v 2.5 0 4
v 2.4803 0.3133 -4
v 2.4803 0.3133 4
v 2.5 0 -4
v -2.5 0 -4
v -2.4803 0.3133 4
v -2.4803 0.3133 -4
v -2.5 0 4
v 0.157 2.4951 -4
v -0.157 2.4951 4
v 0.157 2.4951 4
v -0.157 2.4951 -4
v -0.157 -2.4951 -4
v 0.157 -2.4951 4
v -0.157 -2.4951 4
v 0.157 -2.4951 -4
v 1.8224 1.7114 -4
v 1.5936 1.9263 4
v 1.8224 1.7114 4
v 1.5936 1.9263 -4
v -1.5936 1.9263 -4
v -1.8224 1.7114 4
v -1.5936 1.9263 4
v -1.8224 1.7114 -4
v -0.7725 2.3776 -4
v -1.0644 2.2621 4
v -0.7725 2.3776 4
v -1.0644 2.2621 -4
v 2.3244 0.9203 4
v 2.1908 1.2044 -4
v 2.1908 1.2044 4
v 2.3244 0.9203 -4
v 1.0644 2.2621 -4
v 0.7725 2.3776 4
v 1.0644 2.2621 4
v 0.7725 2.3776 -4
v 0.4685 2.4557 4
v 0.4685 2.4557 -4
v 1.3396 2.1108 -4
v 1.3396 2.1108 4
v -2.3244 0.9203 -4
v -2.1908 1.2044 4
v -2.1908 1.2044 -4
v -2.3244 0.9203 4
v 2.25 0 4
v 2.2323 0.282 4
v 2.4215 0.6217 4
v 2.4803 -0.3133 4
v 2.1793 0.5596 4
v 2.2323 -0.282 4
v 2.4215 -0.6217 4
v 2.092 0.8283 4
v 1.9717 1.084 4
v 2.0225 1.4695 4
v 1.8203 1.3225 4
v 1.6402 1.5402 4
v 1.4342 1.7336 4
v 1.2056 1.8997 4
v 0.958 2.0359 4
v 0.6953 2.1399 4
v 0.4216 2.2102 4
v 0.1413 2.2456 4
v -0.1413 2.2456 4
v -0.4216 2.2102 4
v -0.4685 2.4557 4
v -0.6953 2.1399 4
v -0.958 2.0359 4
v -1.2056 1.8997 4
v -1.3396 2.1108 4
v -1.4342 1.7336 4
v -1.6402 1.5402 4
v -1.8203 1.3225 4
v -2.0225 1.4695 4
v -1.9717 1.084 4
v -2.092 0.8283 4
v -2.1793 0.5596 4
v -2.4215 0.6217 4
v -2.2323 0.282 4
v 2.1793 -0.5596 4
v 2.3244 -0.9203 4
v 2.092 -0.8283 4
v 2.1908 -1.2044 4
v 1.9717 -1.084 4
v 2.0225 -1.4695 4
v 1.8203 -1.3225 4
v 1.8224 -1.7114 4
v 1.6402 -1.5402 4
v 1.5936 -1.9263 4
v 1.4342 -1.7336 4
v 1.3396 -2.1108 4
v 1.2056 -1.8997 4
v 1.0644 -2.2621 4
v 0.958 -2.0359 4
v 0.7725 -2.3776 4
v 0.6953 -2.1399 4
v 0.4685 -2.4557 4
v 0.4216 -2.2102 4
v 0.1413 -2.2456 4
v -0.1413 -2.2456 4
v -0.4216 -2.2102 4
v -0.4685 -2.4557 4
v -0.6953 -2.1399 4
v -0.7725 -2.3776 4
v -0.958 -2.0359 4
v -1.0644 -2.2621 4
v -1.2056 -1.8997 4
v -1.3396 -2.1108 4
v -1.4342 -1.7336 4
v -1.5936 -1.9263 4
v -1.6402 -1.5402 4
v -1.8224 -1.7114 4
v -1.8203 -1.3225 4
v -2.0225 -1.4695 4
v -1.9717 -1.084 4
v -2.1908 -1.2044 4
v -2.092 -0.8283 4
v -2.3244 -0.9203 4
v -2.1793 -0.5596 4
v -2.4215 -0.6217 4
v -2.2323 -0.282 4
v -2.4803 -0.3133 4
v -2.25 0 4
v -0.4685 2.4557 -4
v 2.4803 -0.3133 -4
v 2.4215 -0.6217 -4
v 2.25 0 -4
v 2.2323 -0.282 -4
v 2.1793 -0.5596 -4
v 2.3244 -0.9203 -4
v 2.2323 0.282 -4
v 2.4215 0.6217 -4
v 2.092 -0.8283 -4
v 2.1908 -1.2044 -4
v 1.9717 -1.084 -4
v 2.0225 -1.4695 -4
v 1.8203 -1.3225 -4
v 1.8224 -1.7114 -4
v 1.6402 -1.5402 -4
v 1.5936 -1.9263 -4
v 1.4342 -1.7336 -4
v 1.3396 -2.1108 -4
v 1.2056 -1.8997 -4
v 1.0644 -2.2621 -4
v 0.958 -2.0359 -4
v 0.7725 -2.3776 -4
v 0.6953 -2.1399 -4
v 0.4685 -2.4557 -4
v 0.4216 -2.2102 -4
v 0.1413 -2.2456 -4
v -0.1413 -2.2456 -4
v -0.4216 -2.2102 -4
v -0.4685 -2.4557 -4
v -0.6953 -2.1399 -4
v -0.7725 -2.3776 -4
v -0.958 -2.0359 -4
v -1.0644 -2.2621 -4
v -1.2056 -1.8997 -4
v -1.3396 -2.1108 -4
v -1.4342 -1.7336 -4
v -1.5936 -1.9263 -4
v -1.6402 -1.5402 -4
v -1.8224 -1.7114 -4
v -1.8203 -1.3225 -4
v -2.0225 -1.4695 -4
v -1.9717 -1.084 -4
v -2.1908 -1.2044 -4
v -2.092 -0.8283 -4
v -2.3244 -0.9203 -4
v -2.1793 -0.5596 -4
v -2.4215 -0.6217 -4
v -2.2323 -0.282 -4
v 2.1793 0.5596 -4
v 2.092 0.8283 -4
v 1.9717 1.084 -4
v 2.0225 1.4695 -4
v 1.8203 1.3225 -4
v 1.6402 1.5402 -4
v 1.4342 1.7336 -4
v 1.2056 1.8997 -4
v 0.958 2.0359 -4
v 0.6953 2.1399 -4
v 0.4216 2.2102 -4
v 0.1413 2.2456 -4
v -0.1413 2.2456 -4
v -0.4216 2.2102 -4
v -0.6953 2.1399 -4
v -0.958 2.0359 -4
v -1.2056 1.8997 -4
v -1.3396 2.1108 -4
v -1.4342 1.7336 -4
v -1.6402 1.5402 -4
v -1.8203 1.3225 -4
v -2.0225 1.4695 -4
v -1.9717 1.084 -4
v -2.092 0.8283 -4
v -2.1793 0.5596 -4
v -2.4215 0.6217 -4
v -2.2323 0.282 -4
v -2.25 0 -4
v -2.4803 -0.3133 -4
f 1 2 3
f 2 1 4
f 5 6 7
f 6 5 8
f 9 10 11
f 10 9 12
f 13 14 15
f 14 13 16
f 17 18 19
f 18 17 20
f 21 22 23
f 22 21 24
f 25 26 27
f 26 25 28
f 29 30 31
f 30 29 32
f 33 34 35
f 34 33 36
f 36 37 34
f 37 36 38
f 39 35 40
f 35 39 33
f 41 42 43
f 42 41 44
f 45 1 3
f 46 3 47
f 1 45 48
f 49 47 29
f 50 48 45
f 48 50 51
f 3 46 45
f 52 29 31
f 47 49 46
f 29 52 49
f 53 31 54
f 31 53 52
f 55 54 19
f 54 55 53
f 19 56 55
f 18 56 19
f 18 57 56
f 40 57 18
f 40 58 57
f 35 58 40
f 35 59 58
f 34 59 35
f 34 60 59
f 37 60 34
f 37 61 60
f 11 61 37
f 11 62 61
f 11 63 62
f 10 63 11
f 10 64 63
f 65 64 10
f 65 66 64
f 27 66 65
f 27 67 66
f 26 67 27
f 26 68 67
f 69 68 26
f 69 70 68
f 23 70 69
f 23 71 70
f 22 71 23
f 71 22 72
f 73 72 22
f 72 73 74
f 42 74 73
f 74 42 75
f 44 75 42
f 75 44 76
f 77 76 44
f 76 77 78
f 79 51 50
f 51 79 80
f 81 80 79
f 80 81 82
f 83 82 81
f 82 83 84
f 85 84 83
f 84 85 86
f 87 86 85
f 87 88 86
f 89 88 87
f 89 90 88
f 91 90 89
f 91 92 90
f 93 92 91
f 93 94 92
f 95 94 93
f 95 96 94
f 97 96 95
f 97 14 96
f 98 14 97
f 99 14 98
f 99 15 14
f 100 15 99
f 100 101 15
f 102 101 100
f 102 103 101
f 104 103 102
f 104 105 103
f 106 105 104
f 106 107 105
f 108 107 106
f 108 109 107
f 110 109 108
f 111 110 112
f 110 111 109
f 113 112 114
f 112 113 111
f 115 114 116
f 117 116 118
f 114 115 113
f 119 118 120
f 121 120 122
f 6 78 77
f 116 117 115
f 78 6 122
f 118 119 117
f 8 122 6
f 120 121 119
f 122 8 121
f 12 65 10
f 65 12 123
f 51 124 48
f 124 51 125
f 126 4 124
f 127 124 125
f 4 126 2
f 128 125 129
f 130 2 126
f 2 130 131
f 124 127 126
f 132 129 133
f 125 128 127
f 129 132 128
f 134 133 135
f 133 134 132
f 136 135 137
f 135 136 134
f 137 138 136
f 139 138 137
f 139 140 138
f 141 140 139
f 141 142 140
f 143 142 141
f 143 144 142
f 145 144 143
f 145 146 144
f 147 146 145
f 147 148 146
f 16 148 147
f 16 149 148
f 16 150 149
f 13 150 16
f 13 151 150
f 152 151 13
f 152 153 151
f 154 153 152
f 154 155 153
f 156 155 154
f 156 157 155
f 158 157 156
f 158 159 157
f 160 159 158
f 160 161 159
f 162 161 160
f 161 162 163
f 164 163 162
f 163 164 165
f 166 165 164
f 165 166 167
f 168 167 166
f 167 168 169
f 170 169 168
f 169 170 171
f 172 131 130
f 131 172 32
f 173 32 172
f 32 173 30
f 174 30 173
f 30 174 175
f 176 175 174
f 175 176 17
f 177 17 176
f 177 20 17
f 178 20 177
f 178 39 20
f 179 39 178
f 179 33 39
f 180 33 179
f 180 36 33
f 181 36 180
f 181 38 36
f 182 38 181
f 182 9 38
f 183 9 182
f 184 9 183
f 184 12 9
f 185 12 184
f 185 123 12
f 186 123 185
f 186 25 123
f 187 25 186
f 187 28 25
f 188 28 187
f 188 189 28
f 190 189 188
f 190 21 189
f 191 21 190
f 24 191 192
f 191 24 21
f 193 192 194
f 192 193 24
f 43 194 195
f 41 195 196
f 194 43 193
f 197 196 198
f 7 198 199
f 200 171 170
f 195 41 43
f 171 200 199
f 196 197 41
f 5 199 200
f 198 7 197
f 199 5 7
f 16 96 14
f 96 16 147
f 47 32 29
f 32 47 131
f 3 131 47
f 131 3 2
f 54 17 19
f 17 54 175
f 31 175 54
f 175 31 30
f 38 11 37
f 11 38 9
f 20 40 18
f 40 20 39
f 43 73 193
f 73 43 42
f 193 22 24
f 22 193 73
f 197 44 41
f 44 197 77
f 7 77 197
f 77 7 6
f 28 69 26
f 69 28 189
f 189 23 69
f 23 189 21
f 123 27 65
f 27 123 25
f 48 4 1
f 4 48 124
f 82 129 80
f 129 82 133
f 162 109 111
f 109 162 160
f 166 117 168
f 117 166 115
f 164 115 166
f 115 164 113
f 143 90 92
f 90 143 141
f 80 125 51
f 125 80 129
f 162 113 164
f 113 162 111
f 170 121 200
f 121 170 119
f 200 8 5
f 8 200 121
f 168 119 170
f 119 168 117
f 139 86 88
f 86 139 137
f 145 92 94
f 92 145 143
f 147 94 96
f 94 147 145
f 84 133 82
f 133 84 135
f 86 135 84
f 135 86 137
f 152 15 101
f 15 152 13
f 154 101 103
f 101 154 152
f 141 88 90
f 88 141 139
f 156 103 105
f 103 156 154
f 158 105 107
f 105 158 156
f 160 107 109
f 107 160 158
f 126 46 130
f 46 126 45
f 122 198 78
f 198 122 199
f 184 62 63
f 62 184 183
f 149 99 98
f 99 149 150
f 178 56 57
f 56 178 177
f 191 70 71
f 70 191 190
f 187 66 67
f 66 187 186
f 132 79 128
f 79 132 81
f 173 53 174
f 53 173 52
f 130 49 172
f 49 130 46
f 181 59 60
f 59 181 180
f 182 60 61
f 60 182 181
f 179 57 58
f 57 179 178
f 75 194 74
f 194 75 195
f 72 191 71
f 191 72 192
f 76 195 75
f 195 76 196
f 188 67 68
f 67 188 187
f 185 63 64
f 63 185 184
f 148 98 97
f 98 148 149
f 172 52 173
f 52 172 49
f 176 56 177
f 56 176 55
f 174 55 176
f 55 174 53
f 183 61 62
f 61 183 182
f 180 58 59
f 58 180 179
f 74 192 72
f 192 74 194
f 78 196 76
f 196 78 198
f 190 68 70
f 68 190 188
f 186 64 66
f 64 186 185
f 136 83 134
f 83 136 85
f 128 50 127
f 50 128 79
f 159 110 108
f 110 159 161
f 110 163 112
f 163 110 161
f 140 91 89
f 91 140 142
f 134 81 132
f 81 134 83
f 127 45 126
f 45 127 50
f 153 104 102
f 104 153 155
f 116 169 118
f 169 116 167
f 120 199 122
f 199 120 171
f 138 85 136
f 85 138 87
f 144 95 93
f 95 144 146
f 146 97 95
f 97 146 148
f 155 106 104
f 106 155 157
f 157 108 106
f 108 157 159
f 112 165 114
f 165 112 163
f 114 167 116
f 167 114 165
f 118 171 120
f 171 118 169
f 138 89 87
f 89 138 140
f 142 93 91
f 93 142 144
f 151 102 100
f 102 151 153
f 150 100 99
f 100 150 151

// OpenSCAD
$fn = 50;


difference() {
	union() {
		translate(v = [0, 0, -4.0000000000]) {
			cylinder(h = 8, r = 2.5000000000);
		}
	}
	union() {
		translate(v = [0, 0, -100.0000000000]) {
			cylinder(h = 200, r = 2.2500000000);
		}
	}
}
